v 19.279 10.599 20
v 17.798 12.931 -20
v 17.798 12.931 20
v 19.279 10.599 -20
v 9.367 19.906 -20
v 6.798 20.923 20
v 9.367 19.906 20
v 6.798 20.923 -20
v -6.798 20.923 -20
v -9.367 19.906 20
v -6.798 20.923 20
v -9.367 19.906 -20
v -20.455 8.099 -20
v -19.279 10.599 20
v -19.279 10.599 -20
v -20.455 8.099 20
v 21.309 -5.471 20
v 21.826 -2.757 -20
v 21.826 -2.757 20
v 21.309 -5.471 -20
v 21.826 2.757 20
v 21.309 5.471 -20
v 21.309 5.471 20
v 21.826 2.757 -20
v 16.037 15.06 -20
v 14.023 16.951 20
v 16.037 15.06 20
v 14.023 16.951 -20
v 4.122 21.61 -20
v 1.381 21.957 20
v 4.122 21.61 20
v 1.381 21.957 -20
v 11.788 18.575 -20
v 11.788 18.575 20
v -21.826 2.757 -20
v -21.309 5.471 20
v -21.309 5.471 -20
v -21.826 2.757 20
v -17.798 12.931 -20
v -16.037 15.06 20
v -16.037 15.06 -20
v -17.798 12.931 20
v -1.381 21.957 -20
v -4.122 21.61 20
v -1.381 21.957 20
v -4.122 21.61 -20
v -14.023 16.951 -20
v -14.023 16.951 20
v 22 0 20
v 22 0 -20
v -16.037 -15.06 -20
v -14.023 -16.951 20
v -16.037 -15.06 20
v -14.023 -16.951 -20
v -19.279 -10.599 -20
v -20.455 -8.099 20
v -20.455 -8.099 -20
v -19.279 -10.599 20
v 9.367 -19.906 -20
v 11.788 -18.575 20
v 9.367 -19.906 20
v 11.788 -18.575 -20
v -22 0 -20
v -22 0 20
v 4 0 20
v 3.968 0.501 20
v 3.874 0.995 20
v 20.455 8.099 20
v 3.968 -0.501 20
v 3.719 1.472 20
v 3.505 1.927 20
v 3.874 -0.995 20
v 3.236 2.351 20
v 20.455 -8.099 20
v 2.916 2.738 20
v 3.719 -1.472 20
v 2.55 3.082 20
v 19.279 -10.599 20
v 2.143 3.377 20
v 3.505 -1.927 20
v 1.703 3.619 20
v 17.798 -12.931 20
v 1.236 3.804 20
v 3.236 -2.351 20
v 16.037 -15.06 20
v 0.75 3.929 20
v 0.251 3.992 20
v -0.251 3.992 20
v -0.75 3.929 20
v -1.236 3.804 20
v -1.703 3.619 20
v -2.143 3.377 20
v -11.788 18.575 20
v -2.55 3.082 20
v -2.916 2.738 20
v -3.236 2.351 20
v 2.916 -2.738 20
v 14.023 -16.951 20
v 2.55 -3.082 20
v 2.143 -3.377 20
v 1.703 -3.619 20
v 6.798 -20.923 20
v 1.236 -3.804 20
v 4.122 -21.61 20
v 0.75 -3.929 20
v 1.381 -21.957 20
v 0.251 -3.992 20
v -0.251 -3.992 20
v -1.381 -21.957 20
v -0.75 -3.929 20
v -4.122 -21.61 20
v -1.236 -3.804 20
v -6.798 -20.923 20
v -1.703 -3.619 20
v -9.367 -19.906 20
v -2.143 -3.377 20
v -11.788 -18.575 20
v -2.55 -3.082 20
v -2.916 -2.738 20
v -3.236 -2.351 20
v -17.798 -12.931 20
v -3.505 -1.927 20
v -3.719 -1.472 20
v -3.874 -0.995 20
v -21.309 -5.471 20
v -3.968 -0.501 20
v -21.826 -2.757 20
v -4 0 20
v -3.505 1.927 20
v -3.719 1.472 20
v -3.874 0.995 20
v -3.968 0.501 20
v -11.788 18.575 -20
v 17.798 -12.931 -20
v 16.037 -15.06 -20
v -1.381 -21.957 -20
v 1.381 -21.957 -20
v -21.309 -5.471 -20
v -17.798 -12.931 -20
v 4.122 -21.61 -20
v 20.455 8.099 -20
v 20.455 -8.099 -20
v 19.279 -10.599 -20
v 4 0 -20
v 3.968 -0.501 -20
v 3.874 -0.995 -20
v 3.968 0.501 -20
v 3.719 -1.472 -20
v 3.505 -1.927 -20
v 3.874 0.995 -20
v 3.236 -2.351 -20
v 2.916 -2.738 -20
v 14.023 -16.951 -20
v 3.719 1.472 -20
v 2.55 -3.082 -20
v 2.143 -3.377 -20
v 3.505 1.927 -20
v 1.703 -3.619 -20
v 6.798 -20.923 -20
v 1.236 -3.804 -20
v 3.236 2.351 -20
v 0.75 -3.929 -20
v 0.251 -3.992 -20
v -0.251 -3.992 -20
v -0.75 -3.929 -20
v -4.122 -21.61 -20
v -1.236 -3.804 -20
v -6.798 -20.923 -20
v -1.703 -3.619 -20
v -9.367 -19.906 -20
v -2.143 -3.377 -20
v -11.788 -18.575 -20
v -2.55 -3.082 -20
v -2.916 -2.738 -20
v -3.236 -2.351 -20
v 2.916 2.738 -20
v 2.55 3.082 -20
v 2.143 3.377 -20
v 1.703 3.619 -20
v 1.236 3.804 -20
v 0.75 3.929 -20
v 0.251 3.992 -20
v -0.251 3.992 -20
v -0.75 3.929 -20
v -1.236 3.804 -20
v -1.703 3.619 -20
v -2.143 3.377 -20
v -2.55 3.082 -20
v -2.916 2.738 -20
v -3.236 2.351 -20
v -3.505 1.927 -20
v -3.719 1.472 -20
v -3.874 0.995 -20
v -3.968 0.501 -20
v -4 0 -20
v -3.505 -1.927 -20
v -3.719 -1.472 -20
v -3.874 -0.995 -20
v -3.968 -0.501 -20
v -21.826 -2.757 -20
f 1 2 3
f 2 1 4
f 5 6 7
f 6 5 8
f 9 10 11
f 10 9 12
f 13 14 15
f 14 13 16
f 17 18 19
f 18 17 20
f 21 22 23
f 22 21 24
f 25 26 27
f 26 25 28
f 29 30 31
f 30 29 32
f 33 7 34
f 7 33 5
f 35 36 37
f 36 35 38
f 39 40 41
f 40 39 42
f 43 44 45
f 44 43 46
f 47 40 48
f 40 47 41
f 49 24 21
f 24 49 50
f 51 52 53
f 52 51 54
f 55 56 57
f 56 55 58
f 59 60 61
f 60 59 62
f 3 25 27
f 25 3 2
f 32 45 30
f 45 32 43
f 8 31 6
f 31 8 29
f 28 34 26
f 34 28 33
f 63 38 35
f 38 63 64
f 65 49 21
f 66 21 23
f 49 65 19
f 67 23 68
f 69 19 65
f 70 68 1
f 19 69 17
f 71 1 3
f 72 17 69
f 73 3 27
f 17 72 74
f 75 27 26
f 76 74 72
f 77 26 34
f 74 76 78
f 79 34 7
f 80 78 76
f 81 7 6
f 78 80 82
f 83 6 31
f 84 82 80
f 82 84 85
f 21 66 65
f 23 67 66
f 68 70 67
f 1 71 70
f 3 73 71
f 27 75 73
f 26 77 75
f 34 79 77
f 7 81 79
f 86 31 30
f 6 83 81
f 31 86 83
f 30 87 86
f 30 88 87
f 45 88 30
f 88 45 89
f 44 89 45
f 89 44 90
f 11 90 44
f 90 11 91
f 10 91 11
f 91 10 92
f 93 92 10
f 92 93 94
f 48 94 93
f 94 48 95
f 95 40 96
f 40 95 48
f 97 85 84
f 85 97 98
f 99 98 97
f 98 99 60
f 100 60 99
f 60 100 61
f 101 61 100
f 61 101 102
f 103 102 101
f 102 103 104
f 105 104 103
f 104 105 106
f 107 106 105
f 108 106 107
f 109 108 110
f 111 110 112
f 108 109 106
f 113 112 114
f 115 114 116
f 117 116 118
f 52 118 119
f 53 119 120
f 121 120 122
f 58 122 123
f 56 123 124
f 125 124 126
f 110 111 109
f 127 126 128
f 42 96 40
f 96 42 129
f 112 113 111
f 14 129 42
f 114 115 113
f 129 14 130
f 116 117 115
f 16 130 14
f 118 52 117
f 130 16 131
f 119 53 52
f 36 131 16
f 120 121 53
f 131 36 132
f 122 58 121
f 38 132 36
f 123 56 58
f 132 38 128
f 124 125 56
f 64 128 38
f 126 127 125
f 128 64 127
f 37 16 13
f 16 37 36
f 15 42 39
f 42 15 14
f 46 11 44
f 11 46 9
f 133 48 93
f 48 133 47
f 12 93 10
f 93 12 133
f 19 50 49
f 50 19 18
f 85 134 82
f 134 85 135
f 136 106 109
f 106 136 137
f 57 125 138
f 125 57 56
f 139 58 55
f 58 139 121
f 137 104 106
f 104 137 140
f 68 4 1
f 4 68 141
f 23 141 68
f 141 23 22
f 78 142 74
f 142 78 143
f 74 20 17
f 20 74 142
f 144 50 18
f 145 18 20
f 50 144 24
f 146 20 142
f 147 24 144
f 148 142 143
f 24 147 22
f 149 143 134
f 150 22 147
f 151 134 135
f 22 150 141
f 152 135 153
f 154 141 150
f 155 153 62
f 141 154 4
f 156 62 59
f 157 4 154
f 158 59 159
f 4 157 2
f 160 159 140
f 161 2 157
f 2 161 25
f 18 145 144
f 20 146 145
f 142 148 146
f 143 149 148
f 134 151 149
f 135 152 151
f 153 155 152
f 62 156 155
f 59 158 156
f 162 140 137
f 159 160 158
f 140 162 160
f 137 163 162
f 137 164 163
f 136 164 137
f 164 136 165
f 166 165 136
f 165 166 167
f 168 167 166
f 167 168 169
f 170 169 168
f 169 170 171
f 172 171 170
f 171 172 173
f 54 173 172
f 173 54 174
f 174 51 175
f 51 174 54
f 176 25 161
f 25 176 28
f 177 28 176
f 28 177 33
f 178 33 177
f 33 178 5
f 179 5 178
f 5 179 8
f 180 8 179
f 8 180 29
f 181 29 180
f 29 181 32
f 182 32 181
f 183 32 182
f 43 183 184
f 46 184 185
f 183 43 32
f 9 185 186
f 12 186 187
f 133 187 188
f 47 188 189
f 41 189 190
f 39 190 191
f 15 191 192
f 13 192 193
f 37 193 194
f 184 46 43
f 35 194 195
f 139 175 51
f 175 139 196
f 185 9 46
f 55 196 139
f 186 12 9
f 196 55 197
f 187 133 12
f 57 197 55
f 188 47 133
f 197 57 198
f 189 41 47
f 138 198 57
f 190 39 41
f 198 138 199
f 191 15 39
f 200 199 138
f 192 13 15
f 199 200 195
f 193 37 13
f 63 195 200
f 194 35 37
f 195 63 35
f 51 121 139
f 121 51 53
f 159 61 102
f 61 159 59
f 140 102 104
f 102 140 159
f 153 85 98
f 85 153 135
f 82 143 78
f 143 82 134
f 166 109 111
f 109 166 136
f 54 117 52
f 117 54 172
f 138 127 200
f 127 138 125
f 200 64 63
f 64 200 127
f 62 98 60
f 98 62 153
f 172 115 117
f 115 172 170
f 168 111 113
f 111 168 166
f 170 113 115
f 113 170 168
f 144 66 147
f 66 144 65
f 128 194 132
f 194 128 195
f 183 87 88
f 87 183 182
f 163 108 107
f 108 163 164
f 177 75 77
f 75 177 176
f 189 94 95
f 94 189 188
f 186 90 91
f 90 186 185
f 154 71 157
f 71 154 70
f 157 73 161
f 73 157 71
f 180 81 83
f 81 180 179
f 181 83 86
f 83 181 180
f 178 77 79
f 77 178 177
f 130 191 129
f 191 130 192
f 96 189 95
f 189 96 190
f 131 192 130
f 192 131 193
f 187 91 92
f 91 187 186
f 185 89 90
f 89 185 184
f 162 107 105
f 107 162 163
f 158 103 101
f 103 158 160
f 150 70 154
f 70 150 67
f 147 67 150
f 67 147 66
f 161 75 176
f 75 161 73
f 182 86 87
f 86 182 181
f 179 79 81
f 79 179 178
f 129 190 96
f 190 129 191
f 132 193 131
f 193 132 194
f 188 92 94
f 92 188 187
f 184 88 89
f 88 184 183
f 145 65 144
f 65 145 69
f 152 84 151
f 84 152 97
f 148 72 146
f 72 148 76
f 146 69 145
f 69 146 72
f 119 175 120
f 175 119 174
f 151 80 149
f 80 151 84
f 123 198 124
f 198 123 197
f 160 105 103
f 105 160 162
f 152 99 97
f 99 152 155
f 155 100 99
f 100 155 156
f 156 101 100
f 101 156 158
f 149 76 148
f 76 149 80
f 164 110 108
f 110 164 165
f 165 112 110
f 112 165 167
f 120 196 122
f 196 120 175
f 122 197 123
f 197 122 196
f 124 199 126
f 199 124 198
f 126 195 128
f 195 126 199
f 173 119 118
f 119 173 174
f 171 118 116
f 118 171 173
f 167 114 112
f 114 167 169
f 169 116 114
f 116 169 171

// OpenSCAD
$fn = 50;


difference() {
	union() {
		translate(v = [0, 0, -20.0000000000]) {
			cylinder(h = 40, r = 22.0000000000);
		}
	}
	union() {
		translate(v = [0, 0, -100.0000000000]) {
			cylinder(h = 200, r = 4);
		}
	}
}
